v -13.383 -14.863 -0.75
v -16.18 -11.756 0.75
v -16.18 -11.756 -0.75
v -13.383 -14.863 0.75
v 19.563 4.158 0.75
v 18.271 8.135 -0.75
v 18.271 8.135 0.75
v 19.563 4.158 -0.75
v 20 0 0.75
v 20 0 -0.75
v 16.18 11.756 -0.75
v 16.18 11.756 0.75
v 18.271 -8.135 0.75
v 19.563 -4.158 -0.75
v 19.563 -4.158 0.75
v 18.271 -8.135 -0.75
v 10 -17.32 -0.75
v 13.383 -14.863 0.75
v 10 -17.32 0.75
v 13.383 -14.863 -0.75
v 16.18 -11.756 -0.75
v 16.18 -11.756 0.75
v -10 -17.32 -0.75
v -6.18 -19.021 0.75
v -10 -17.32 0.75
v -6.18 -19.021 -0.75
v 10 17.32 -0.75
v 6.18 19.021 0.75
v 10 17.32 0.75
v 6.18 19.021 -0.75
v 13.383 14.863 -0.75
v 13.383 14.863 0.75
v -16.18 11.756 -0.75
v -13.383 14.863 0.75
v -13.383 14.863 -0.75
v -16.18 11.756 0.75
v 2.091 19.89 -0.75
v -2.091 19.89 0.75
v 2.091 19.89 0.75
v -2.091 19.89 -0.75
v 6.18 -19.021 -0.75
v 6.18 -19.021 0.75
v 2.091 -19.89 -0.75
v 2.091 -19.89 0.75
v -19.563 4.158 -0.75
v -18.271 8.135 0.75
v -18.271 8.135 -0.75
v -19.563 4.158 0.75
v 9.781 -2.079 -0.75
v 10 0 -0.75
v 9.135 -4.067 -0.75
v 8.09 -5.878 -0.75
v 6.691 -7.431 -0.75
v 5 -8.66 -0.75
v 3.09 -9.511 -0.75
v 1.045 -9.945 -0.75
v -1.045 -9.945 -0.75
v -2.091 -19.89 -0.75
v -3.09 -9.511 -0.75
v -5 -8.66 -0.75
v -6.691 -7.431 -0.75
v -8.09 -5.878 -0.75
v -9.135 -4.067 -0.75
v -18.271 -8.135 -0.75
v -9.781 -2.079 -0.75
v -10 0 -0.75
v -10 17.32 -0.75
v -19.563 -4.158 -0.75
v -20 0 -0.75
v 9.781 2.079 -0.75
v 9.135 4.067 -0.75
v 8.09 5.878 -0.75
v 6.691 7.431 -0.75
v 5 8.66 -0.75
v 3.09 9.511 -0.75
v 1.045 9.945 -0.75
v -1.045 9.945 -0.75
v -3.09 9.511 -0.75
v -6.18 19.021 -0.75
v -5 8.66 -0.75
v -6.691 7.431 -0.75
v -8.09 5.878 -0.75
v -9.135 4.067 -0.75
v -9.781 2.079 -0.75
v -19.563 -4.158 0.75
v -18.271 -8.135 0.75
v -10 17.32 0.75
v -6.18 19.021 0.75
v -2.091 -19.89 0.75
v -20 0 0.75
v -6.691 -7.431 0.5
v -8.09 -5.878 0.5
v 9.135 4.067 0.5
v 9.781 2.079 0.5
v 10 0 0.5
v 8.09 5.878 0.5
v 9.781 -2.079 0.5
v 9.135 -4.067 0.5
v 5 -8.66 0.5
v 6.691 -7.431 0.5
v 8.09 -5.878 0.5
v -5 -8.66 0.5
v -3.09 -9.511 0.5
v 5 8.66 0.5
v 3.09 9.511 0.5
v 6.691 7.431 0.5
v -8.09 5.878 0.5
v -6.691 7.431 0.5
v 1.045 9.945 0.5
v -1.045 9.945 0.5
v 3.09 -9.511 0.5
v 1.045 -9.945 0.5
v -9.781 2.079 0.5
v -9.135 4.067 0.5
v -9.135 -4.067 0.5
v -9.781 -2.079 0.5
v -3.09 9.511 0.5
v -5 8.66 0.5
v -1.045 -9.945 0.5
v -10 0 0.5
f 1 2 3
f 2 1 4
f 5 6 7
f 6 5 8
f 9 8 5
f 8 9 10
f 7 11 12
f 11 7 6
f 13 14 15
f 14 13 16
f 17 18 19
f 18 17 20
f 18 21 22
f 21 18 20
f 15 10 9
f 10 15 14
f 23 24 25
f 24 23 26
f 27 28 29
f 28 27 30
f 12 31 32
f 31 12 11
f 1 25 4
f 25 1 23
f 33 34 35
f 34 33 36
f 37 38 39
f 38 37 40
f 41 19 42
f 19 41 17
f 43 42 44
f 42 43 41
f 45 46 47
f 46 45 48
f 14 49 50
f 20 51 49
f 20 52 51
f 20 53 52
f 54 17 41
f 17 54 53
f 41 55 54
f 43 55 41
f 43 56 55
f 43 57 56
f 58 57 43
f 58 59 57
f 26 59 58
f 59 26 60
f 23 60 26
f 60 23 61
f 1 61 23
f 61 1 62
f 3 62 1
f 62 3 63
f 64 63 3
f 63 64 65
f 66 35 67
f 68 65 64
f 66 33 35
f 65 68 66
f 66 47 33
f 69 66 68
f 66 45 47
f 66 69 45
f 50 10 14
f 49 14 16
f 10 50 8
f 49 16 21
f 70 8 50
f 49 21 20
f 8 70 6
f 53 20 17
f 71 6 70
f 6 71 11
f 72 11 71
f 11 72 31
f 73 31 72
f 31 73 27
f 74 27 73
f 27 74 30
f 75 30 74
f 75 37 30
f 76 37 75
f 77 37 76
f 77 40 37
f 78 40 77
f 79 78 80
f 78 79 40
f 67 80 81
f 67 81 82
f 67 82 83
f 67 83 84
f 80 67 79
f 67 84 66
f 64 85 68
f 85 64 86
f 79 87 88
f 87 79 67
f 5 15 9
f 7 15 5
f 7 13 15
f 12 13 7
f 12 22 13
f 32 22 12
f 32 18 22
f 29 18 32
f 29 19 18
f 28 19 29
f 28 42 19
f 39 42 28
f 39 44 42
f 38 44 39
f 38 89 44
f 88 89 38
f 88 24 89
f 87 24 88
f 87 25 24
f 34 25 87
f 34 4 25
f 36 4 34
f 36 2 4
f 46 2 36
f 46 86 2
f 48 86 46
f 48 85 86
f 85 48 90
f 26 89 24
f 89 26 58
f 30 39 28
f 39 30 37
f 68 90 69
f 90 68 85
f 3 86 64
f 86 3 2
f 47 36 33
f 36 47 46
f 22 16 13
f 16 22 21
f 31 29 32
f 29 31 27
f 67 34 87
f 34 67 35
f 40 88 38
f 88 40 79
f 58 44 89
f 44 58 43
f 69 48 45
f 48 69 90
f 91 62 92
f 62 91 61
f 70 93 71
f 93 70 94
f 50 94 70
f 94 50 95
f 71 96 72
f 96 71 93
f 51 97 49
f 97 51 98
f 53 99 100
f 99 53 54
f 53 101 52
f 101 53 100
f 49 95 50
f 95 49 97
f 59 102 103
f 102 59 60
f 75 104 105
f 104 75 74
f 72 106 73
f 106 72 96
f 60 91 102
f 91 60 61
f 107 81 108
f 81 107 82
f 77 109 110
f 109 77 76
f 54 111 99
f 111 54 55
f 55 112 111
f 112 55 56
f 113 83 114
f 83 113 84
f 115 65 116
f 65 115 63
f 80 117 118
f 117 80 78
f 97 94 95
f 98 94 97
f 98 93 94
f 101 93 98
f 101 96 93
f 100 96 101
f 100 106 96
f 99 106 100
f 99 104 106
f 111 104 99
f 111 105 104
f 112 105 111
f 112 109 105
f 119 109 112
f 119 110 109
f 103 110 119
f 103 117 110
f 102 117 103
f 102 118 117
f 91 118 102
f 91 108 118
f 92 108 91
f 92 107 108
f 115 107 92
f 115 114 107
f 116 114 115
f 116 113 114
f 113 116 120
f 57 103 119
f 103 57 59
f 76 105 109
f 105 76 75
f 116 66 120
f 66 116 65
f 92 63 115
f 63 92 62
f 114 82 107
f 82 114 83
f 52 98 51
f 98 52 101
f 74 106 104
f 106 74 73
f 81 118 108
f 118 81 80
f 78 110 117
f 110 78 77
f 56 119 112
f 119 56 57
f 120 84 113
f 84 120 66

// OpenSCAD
// Spacer Ring Component
// Description: A flat, circular ring with a hollow center. It is thin and has a smooth surface.

module spacer_ring() {
    difference() {
        // Outer cylinder
        cylinder(h=1.5, r=20, center=true); // Reduced thickness from 2 to 1.5
        // Inner hollow cylinder
        translate([0, 0, -1]) cylinder(h=3, r=10, center=true); // Adjusted inner cylinder height to match the reduced thickness
    }
}

// Render the spacer ring
spacer_ring();
